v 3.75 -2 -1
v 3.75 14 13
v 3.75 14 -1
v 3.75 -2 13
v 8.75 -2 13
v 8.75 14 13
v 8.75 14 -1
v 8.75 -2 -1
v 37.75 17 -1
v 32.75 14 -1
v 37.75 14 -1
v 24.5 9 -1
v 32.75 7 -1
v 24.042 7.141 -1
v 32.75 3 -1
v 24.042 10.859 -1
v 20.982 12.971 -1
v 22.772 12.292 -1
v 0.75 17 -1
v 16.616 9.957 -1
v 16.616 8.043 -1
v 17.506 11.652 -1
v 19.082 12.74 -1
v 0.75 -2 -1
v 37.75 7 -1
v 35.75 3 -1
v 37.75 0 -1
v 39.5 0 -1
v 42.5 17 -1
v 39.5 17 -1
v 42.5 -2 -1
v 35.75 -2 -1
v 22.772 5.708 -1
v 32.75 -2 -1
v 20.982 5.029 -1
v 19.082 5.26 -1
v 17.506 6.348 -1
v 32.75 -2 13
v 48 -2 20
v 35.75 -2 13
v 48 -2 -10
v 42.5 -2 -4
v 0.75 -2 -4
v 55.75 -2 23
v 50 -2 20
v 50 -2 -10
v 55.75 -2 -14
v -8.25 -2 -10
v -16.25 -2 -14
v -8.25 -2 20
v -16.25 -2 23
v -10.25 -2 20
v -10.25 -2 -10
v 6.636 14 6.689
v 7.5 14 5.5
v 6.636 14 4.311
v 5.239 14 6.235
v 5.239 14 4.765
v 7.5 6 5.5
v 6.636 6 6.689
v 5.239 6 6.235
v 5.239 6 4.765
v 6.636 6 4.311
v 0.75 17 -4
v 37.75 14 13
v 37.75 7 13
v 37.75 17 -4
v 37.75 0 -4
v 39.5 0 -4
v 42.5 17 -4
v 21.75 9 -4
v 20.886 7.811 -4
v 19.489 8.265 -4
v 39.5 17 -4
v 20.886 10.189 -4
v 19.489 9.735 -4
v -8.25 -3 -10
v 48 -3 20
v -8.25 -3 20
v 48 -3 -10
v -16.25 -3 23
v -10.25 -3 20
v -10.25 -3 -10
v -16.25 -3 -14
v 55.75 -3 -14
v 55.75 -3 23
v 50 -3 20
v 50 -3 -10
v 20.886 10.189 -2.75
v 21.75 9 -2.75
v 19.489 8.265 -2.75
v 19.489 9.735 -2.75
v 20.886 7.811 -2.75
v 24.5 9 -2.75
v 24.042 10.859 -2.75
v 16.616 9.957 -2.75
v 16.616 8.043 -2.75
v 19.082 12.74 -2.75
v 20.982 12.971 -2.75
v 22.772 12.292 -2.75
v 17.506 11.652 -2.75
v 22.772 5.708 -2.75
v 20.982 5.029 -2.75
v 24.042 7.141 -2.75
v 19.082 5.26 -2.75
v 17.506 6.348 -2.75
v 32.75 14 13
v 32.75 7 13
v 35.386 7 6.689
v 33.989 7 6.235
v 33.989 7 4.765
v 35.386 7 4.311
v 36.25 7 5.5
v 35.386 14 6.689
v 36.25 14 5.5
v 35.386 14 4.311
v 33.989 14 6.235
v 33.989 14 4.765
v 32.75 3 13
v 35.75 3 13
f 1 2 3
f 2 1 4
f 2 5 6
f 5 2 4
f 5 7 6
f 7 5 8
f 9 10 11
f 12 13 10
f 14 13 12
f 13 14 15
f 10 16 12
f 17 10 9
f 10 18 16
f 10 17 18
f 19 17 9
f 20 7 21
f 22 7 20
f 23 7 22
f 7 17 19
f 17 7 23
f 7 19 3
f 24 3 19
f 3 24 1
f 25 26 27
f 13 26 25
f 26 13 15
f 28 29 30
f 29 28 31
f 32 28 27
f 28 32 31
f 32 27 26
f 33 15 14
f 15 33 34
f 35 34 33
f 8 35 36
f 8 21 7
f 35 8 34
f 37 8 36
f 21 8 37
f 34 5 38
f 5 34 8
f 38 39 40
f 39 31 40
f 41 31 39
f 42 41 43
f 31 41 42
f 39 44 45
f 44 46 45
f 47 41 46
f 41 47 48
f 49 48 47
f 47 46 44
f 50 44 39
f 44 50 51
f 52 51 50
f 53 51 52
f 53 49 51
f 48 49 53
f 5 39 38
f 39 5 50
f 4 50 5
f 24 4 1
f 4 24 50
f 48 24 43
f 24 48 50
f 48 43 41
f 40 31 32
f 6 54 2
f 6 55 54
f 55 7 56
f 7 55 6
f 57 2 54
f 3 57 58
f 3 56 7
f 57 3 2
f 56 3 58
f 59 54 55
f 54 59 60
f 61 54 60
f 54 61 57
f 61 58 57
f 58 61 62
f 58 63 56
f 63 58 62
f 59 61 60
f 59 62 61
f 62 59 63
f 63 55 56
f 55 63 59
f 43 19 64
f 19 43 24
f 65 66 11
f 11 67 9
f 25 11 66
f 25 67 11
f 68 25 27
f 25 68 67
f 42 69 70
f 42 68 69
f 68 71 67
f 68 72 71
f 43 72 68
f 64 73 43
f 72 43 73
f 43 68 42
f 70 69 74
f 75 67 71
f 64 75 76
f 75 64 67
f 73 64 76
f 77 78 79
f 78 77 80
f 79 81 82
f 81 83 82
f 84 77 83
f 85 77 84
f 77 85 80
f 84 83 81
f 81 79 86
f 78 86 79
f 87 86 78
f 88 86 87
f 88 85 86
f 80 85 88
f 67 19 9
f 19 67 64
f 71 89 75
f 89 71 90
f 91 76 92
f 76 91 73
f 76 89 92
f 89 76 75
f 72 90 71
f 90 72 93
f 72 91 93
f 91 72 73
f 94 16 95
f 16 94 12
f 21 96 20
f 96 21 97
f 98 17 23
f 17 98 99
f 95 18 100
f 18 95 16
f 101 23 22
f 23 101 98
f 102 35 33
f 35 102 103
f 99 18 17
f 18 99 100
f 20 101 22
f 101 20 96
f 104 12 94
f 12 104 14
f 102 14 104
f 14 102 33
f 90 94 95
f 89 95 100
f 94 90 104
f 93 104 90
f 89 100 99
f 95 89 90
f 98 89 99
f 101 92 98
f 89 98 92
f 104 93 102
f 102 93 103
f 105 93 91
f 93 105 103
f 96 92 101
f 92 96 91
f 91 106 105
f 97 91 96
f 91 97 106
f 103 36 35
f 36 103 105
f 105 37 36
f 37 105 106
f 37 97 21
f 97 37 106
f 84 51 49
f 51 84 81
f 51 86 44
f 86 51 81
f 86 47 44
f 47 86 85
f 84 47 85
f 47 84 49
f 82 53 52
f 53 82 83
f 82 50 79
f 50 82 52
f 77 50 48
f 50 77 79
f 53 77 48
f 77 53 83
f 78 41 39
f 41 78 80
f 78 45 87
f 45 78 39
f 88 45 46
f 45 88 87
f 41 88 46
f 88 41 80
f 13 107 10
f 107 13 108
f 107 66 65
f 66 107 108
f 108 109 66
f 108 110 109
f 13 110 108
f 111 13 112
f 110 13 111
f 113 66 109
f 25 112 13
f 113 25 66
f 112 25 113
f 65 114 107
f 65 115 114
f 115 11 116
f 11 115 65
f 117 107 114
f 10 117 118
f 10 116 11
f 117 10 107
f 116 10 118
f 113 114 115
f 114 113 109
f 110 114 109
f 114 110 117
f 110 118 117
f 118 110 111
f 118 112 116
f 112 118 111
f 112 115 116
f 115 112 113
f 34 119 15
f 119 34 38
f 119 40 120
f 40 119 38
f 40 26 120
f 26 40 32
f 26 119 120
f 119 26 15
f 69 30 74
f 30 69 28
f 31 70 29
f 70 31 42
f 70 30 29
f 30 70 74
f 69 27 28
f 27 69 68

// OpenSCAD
difference()
{
translate([3.75,-2,-1])
{
    cube([5,16,14]);
}

translate([6.25,14,5.5])
{
    rotate([90,0,0])
    {
    cylinder(8,1.25,1.25);
    }
}

}

difference()
{
translate([0.75,-3,-4])
{
    cube([37,20,3]);
}

translate([20.5,9,-4.5])
{
cylinder(2,1.25,1.25);
}

translate([20.5,9,-2.75])
{
cylinder(3,4,4);
}


}

/*
translate([2.75,-3,-6.75])
{
cube([15,8,2.75]);
}

translate([2.75,13,-6.75])
{
cube([15,8,2.75]);
}

translate([22.75,-3,-6.75])
{
cube([15,8,2.75]);
}

translate([22.75,13,-6.75])
{
cube([15,8,2.75]);
}
*/

translate([32.75,-2,-1])
{
    cube([3,5,14]);
}

difference()
{
translate([-16.25,-3,-14])
{
    cube([72,1,37]);
}

translate([-10.25,-3,-10])
{
    cube([2,1,30]);
}


translate([48,-3,-10])
{
    cube([2,1,30]);
}

}




translate([39.5,-3,-4])
{
    cube([3,20,3]);
}

translate([37.5,-3,-4])
{
    cube([3,3,3]);
}


difference()
{
    
translate([32.75,7,-1])
{
    cube([5,7,14]);
}

translate([35,14,5.5])
{
    rotate([90,0,0])
    {
    cylinder(8,1.25,1.25);
    }
}

}

translate([0,0,14])
{
    rotate([-90,0,0])
    {
    //import("servo.stl");
    }
}
